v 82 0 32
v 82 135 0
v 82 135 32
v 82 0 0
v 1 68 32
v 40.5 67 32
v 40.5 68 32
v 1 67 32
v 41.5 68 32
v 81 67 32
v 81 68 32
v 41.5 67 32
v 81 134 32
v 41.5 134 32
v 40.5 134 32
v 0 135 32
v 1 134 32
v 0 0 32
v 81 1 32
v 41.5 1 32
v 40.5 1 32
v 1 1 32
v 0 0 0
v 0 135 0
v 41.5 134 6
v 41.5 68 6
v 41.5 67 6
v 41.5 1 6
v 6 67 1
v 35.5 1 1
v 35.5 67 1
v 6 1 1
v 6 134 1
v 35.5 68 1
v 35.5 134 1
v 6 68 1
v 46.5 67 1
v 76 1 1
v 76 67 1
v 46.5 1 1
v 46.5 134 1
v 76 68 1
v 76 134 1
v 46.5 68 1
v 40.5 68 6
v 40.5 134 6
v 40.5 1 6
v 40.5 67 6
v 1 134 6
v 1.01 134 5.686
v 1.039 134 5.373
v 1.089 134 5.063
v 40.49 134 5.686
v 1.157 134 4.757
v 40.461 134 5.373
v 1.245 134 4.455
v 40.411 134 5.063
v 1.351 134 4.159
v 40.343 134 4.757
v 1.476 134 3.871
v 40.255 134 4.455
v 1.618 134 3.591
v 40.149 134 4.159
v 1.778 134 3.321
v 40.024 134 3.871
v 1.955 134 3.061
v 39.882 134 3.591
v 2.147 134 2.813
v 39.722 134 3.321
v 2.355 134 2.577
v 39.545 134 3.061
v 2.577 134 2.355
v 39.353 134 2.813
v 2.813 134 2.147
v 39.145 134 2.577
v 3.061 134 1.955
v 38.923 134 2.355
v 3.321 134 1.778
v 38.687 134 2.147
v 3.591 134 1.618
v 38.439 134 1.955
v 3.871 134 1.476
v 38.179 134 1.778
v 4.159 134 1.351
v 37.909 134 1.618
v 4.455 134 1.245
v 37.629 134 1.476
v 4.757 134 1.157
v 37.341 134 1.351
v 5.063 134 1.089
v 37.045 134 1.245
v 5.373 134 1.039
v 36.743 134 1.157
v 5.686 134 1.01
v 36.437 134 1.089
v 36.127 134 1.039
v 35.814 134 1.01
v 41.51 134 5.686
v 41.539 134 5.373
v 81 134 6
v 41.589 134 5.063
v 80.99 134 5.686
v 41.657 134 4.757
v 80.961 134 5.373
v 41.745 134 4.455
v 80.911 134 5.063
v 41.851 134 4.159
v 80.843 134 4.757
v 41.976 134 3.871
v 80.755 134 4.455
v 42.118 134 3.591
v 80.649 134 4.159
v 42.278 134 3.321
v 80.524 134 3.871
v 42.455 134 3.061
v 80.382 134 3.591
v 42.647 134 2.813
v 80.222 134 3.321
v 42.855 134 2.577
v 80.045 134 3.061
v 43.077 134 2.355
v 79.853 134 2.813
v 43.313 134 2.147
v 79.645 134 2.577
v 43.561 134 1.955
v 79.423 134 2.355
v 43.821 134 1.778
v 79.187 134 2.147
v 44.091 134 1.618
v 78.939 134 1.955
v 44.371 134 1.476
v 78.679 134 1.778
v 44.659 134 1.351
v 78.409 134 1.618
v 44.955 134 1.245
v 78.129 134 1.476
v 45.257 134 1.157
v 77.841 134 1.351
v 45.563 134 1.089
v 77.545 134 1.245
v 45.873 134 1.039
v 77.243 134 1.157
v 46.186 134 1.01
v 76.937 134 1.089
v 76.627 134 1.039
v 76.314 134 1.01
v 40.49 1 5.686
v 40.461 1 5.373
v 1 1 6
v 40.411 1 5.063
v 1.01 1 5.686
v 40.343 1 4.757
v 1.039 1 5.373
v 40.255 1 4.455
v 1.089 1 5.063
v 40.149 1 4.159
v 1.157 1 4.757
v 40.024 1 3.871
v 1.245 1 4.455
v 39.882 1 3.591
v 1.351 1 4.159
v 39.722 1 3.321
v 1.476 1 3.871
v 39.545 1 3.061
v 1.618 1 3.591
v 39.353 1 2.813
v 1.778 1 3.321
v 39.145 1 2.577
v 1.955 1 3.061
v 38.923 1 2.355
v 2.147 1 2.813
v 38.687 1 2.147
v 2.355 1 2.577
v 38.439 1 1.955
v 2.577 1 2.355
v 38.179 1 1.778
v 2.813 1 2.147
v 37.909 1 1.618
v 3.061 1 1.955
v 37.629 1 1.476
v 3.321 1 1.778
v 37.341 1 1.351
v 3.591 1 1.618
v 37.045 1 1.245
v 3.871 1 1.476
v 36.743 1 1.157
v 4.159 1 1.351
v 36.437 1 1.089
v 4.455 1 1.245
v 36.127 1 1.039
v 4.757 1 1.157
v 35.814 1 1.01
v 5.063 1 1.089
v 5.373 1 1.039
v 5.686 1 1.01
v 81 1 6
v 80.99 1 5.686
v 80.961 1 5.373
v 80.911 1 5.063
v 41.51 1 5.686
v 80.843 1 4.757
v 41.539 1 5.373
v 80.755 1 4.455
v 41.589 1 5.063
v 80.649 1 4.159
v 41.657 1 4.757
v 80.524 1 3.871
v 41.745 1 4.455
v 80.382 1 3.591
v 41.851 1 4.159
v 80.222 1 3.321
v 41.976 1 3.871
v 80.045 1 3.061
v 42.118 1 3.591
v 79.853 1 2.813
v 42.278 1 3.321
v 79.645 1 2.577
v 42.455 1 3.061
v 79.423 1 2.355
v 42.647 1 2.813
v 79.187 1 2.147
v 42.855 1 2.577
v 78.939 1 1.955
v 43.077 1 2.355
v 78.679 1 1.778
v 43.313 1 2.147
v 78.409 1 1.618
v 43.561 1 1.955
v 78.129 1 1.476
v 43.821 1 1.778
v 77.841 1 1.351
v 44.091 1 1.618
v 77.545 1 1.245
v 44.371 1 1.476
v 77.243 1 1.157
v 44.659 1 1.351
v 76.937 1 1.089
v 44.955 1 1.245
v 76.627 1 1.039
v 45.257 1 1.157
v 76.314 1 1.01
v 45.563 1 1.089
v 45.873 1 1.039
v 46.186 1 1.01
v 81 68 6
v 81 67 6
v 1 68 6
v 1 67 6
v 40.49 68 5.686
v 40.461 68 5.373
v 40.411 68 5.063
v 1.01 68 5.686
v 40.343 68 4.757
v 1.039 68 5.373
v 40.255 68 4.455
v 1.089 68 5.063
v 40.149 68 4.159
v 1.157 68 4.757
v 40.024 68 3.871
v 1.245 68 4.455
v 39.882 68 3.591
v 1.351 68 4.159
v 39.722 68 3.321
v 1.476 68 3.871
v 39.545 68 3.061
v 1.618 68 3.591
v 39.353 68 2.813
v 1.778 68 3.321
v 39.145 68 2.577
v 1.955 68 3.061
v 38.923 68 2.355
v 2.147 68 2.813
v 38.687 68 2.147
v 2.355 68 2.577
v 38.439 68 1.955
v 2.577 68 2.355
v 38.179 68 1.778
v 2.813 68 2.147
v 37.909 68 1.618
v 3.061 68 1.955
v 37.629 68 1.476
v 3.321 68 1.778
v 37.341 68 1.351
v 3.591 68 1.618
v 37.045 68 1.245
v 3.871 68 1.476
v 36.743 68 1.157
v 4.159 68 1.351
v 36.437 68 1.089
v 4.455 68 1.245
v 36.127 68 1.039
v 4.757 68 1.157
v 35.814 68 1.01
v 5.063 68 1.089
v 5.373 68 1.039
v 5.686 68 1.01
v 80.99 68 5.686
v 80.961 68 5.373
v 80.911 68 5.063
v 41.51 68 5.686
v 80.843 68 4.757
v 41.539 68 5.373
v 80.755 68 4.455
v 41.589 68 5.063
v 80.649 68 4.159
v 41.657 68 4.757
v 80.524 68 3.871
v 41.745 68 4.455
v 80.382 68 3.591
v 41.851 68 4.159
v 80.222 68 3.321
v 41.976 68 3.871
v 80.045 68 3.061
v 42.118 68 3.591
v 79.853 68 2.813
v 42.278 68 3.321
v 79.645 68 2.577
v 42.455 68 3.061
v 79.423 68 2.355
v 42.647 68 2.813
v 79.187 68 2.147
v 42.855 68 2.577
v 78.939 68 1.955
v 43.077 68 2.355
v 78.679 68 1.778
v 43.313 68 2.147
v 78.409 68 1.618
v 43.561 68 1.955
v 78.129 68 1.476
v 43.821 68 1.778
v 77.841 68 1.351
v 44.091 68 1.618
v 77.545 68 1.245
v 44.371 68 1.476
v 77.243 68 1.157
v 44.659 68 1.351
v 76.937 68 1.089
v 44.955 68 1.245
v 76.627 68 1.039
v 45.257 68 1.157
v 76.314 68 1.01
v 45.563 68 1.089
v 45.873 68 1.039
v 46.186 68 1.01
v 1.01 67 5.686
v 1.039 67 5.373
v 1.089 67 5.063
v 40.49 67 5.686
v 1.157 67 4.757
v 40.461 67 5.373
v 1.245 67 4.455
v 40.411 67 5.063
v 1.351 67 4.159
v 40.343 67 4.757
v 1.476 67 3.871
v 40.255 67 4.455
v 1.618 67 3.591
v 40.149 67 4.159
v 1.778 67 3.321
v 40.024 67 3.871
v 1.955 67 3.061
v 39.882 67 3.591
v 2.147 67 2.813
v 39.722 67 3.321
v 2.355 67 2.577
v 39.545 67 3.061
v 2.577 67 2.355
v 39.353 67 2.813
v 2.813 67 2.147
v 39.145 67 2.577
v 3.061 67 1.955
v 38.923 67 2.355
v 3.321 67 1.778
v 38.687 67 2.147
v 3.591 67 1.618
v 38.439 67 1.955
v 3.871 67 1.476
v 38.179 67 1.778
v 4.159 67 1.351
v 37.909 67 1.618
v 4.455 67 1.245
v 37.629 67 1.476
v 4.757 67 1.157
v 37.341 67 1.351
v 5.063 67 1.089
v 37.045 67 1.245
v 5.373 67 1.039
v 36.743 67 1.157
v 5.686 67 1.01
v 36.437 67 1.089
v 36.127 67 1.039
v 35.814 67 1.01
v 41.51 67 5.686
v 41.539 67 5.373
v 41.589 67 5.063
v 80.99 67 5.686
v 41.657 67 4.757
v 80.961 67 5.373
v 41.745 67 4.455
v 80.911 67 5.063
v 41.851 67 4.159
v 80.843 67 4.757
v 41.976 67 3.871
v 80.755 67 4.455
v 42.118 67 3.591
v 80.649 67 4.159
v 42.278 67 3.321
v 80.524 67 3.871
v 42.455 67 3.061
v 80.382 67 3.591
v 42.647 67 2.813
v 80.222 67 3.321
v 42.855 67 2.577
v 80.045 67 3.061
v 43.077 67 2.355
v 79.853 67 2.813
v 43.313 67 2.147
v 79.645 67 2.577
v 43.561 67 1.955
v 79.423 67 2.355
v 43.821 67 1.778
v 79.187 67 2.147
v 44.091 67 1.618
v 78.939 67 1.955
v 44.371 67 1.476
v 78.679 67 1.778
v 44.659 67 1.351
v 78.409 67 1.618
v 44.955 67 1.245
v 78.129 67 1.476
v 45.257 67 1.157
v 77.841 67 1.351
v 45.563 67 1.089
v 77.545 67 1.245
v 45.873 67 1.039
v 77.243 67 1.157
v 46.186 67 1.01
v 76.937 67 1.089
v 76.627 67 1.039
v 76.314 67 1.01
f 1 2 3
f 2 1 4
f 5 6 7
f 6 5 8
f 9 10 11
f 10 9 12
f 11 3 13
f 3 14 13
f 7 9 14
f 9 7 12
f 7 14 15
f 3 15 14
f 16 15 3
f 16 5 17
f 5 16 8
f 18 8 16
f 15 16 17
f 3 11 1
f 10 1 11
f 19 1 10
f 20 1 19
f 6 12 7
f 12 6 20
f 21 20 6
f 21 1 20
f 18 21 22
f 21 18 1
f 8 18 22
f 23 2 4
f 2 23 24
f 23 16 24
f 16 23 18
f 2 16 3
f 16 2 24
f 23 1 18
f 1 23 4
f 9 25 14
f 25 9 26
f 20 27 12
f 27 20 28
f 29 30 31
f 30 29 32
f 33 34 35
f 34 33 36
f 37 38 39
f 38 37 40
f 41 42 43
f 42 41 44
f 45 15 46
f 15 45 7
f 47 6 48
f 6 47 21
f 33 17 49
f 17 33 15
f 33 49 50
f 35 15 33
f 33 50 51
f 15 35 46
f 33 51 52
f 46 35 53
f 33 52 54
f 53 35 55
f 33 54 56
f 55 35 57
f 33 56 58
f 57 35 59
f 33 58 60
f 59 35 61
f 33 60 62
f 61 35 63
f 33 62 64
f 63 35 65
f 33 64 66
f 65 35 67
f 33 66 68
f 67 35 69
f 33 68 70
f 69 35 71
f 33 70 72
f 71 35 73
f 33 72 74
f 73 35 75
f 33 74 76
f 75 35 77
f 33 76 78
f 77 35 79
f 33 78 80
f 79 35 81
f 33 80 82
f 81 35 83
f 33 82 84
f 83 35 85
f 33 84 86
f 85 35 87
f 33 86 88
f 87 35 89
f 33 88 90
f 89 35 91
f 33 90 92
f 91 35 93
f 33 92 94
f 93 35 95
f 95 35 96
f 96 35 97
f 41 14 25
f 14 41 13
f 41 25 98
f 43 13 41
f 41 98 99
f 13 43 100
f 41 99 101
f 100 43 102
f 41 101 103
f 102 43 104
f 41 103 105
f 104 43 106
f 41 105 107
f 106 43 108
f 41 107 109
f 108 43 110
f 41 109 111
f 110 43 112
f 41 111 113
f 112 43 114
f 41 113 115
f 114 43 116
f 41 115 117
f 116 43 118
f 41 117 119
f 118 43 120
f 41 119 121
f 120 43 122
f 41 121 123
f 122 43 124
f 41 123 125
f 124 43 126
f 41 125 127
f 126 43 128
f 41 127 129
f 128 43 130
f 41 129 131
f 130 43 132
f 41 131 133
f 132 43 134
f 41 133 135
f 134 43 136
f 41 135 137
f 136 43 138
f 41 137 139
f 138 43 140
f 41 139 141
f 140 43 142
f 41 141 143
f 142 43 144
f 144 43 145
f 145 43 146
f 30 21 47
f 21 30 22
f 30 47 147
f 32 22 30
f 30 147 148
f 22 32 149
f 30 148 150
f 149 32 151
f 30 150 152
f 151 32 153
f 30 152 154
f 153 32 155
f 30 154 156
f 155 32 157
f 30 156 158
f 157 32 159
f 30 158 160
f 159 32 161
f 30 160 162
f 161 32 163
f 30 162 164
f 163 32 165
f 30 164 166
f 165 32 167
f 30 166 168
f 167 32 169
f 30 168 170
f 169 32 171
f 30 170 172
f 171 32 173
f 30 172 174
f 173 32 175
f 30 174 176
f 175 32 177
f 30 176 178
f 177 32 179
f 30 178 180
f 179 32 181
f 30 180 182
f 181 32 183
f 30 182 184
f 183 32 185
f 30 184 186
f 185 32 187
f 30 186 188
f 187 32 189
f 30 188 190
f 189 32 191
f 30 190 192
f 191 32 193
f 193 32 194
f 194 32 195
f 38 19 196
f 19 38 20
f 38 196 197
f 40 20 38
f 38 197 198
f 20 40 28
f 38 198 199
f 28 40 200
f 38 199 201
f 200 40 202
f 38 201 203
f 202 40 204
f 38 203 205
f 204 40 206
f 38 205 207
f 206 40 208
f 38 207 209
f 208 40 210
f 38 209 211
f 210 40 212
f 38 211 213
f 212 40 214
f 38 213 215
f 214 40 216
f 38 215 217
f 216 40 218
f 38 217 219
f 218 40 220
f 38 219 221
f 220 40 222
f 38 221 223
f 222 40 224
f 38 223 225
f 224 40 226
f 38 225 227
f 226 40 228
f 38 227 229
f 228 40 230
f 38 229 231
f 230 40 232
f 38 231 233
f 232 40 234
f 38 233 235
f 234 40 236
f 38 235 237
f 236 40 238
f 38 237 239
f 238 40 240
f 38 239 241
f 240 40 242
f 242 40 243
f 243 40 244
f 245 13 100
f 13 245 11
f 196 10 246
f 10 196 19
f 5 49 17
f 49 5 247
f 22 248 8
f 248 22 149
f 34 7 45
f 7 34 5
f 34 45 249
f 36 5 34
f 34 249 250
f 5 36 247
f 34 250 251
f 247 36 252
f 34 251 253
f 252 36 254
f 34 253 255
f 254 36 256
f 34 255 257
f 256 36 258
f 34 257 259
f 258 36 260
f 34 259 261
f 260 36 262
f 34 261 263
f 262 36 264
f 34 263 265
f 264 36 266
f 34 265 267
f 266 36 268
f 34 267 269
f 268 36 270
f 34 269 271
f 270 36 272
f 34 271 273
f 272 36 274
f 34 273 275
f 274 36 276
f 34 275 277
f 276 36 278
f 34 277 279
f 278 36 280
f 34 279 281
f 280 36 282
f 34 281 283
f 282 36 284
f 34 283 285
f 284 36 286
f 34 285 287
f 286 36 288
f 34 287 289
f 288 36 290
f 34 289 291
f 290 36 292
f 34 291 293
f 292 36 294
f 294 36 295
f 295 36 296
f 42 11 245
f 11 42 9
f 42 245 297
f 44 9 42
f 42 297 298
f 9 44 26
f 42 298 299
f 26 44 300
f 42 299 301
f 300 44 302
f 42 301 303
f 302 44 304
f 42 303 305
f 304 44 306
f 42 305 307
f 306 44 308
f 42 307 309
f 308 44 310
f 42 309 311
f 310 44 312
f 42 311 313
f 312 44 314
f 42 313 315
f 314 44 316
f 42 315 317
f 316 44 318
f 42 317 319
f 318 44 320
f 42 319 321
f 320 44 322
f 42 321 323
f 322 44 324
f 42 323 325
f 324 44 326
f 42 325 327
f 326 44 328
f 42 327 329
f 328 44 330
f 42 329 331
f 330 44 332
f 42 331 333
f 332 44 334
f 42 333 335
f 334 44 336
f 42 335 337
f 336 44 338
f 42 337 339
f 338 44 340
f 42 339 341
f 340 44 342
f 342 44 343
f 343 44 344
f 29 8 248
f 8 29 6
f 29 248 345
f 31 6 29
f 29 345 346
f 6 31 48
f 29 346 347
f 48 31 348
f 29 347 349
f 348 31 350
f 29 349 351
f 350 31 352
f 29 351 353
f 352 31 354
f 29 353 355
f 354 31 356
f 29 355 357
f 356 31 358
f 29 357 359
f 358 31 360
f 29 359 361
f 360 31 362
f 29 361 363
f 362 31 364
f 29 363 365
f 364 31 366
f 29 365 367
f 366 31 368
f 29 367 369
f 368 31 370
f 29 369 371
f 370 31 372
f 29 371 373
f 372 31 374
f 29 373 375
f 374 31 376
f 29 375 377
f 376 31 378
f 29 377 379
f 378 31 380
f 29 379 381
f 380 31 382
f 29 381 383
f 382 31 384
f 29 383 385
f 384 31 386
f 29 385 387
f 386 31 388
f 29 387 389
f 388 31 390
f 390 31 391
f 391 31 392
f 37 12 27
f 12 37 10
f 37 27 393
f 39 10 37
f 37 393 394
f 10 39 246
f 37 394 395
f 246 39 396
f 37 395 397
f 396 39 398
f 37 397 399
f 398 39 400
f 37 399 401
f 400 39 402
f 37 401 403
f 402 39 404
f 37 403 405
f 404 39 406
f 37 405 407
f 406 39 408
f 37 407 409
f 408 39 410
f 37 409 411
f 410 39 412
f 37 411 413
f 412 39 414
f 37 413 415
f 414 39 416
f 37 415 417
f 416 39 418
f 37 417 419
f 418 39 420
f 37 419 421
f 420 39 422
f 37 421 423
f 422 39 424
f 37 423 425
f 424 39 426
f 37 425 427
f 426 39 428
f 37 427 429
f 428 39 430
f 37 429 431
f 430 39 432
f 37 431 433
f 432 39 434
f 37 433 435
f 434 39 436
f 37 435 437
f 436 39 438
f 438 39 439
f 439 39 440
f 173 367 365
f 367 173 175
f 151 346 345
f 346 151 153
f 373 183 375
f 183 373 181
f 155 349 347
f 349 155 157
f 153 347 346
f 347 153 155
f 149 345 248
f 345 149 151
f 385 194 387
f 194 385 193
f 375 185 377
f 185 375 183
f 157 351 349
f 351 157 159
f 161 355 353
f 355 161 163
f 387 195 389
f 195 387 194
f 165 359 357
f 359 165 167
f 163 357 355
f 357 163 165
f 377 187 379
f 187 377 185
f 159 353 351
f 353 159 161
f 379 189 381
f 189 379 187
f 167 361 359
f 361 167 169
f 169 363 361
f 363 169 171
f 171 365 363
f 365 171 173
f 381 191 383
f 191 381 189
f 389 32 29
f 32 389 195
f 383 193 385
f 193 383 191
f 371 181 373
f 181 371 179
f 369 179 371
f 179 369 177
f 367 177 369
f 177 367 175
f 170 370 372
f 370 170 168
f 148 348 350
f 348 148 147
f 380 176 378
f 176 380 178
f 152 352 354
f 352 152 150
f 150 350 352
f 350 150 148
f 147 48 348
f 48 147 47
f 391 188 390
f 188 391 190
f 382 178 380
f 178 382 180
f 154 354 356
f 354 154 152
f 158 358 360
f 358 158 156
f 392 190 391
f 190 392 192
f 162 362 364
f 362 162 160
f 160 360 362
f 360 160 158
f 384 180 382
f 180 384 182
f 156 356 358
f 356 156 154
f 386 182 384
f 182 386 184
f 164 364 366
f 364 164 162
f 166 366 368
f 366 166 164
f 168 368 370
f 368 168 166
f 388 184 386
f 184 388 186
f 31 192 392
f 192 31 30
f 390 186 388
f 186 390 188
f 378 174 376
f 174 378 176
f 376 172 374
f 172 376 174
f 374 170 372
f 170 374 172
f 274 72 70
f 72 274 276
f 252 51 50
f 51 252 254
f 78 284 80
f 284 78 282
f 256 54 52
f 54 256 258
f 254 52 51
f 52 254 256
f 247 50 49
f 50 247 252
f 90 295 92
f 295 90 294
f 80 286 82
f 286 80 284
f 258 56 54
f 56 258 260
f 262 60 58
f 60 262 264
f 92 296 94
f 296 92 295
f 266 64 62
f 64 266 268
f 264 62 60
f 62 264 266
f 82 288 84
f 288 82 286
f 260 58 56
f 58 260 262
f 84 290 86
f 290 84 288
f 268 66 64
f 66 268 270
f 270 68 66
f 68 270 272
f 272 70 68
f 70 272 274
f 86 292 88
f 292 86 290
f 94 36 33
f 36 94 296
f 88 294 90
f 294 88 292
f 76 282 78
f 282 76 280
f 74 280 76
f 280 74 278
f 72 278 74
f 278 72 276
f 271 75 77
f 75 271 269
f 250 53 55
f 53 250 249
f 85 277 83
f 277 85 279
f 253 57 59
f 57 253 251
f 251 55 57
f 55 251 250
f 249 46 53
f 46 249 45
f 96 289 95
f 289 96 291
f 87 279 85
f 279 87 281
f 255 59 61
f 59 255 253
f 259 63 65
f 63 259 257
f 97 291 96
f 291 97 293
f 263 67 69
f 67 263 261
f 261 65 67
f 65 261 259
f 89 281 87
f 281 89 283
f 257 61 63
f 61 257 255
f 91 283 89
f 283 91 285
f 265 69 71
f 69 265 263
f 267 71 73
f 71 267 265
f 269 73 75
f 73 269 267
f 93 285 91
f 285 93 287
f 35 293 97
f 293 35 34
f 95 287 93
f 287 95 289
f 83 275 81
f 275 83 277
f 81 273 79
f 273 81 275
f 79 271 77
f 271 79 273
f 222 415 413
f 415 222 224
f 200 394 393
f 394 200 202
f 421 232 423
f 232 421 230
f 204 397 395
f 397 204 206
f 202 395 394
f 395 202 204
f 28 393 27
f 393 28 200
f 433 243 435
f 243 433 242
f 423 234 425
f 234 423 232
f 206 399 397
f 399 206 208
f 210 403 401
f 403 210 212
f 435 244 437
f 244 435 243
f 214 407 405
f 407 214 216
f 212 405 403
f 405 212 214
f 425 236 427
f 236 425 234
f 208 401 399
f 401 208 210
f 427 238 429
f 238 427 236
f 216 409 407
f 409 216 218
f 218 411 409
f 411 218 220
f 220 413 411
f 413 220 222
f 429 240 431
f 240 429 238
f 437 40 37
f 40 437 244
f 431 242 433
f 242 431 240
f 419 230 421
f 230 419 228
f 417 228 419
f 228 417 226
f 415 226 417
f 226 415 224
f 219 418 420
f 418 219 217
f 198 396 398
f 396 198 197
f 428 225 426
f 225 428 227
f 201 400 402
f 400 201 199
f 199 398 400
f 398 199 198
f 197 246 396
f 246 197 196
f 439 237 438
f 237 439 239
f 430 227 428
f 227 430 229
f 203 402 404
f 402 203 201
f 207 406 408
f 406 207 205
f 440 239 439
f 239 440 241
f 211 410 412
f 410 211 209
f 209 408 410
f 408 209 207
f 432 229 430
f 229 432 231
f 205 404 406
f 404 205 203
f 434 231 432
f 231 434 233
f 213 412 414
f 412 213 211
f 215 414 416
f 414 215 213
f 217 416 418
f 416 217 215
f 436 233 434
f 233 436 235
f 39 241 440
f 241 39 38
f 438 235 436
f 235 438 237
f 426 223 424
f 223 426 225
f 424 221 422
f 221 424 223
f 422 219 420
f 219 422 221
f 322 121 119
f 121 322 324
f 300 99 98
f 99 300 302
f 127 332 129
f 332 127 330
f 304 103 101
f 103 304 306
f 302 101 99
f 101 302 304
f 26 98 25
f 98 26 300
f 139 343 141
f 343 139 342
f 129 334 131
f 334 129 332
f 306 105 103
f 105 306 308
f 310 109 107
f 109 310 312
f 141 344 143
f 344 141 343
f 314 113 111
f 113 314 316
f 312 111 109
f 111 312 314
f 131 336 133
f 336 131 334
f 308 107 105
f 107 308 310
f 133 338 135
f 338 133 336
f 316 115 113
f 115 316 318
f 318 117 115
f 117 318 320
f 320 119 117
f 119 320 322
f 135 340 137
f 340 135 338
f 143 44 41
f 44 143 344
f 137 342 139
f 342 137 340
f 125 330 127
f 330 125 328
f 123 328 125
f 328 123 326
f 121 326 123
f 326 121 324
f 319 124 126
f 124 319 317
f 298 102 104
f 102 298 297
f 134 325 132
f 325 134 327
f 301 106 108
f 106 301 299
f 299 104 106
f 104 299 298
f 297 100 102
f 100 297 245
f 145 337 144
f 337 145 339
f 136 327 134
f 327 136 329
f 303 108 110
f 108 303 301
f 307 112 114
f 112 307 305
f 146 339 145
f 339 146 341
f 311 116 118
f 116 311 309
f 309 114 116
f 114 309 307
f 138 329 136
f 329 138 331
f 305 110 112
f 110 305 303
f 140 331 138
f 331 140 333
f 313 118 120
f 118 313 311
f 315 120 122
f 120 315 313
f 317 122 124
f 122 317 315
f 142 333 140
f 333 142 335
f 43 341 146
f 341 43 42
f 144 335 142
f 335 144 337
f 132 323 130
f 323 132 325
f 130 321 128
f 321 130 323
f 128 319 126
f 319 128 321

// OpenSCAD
include <boardgame_insert_toolkit_lib.2.scad>;

// determines whether lids are output.
g_b_print_lid = true;

// determines whether boxes are output.
g_b_print_box = true; 

// Focus on one box
g_isolated_print_box = ""; 

// Used to visualize how all of the boxes fit together. 
g_b_visualization = false;          
        
// this is the outer wall thickness. 
//Default = 1.5mm
g_wall_thickness = 1.0;

// The tolerance value is extra space put between planes of the lid and box that fit together.
// Increase the tolerance to loosen the fit and decrease it to tighten it.
//
// Note that the tolerance is applied exclusively to the lid.
// So if the lid is too tight or too loose, change this value ( up for looser fit, down for tighter fit ) and 
// you only need to reprint the lid.
// 
// The exception is the stackable box, where the bottom of the box is the lid of the box below,
// in which case the tolerance also affects that box bottom.
//
g_tolerance = 0.15;

// This adjusts the position of the lid detents downward. 
// The larger the value, the bigger the gap between the lid and the box.
g_tolerance_detents_pos = 0.1;

aw_size_x = 82.0; // 180.0; // 308.0 - 40.0 - 40.0 - 24.0 - 24.0 - 24.0 = 156 (minus two for division by 3) = 156;
aw_size_y = 135;
aw_size_z = 32.0;


data =
  [
    [
      "simple box",
      [
        [ BOX_SIZE_XYZ, [aw_size_x, aw_size_y, aw_size_z] ],
        [ BOX_NO_LID_B, t],
        [
          BOX_COMPONENT,
          [
            [
              CMP_COMPARTMENT_SIZE_XYZ,
              [
                (aw_size_x - 1.0 - 1.0 - 1.0) / 2.0,
                (aw_size_y - 1.0 - 1.0 - 1.0) / 2.0,
                aw_size_z - g_wall_thickness
              ]
            ],
            [ CMP_NUM_COMPARTMENTS_XY, [2, 2] ],
            [ CMP_SHAPE, FILLET ],
            [ CMP_FILLET_RADIUS, 5.0 ],
            [ POSITION_XY, [0, CENTER] ],
          ]
        ],
        [
          BOX_COMPONENT,
          [
            [
              CMP_COMPARTMENT_SIZE_XYZ,
              [
                57.5, //(aw_size_x - 1.0 - 1.0 - 1.0 - 1.0) / 3.0,
                (aw_size_y - 1.0 - 1.0),
                aw_size_z - g_wall_thickness
              ]
            ],
            [ CMP_NUM_COMPARTMENTS_XY, [1, 1] ],
            [ CMP_SHAPE, FILLET ],
            [ CMP_FILLET_RADIUS, 5.0 ],
            [ POSITION_XY, [82, CENTER] ],
          ]
        ],
      ]
    ]
  ];

MakeAll();
